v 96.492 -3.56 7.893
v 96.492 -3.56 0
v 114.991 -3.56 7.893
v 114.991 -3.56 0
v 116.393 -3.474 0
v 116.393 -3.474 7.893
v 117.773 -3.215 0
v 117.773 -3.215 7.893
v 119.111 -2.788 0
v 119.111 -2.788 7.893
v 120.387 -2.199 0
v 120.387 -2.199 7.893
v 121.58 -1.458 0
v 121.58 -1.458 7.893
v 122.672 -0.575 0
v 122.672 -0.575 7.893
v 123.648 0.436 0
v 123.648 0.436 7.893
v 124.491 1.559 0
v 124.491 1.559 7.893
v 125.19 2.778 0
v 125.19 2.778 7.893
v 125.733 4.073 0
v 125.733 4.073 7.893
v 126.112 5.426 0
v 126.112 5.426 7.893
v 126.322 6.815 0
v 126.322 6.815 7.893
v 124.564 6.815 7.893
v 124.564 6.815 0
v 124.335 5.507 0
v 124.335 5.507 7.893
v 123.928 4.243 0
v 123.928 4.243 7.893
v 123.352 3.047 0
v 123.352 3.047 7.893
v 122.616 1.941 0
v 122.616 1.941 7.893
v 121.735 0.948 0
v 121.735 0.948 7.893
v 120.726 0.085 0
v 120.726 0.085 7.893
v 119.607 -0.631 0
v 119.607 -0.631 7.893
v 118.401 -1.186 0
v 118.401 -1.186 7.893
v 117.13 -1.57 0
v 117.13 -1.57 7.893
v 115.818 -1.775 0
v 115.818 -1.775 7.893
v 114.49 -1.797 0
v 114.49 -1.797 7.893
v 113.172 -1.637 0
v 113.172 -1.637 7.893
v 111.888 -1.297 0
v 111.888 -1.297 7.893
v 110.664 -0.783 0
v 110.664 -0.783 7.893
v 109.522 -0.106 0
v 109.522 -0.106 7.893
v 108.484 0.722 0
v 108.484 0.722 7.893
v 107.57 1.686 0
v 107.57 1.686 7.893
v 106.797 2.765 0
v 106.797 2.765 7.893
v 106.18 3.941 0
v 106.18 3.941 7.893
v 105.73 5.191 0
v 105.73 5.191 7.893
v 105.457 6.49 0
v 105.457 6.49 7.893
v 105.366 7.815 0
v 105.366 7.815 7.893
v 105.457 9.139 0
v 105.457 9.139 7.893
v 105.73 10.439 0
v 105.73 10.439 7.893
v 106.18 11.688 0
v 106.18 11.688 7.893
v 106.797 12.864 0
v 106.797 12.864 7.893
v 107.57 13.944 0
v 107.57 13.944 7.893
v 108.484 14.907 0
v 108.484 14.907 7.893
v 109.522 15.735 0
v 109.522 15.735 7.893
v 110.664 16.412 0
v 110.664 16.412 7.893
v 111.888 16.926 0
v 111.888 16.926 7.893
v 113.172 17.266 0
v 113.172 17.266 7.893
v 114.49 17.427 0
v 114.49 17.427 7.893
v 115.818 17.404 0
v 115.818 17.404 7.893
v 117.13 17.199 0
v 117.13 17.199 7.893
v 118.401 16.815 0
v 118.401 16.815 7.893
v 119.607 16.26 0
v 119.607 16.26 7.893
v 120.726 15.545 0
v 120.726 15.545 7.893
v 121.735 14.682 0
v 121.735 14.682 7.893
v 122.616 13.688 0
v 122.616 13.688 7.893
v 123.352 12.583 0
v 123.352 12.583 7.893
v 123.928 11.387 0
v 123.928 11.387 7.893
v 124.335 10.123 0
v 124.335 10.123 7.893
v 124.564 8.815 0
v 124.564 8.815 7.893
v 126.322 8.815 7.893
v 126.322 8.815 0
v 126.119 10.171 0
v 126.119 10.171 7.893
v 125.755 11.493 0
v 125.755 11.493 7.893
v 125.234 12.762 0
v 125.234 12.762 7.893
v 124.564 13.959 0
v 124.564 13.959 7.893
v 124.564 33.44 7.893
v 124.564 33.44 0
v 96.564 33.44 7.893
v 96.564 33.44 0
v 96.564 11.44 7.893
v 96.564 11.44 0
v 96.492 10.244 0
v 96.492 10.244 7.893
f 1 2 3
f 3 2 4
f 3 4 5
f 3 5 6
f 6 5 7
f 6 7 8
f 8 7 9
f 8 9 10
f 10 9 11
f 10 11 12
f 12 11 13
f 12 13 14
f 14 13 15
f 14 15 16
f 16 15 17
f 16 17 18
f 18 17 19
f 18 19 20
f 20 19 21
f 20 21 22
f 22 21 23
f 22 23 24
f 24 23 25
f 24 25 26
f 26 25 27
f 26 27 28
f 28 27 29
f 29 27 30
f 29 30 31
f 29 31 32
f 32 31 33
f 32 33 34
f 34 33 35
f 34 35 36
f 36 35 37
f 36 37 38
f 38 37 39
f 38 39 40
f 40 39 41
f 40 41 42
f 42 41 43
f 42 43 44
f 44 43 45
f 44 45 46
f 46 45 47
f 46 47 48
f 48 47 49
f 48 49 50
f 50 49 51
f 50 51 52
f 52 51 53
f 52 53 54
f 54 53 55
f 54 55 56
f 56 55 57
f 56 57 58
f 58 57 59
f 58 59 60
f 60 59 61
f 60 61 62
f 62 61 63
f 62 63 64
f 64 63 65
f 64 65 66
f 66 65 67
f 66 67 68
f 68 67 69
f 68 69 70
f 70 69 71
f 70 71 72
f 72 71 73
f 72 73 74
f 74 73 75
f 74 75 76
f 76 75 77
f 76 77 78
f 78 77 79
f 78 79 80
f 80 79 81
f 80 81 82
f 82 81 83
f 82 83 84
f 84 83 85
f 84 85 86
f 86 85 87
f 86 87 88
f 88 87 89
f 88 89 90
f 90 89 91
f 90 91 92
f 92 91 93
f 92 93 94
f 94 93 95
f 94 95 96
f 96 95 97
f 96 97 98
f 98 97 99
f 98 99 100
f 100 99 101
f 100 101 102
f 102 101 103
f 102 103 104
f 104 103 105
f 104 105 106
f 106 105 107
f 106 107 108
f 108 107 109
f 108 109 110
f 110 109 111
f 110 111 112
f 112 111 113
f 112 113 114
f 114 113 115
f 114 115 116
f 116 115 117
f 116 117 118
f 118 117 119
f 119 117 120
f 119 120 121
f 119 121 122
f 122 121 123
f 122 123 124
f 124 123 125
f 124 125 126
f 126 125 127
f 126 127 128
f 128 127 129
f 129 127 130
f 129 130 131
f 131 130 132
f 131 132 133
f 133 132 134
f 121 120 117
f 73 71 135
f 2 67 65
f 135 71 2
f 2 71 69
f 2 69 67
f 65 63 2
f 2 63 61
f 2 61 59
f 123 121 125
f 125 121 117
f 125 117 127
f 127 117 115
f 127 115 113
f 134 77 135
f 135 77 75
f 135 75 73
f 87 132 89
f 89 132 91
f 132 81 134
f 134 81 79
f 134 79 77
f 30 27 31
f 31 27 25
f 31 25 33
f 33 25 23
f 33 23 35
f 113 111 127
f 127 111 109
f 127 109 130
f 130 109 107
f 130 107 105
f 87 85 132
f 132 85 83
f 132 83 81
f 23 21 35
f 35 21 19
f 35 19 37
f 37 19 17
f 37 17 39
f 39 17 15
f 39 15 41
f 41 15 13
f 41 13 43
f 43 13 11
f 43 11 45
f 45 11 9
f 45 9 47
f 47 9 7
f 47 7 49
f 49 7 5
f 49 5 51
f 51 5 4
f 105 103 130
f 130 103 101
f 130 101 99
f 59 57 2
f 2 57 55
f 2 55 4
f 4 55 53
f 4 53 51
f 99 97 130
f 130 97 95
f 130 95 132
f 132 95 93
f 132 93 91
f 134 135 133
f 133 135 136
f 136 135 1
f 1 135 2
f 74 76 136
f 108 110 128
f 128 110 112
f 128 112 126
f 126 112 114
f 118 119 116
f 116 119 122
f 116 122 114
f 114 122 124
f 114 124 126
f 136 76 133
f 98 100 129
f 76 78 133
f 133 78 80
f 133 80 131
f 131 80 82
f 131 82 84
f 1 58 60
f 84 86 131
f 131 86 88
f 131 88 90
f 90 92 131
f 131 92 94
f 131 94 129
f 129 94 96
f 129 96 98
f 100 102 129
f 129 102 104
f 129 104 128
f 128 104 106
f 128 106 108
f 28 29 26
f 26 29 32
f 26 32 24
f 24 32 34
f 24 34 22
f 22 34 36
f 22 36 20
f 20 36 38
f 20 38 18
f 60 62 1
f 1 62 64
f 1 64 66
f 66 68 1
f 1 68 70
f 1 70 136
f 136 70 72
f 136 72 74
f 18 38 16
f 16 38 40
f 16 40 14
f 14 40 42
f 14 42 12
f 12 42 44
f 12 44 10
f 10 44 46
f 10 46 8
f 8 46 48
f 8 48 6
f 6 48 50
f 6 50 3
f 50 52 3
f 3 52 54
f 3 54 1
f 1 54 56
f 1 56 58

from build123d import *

# Parameters (mm, degrees)
BOSS_EXTRUDE3_DEPTH = 28
FILLET1_R           = 10
SKETCH8_R           = 9.5
SKETCH8_W           = 8
SKETCH8_H           = 5
CUT_EXTRUDE4_DEPTH  = 5
SKETCH10_R          = 1.75
CUT_EXTRUDE6_DEPTH  = 10
CUT_EXTRUDE9_DEPTH  = 5
SKETCH11_W          = 178.461857567
SKETCH11_H          = 75.855450753
CUT_EXTRUDE7_DEPTH  = 56
SKETCH15_W          = 24.76037583
SKETCH15_H          = 40.698494869
CUT_EXTRUDE10_DEPTH = 39


with BuildPart() as part:
    # Sketch7 → Boss-Extrude3 (new body)
    with BuildSketch(Plane.XY):
        with BuildLine():
            Line((-29.009247715, -3.56026037), (114.990752285, -3.56026037))
            ThreePointArc((114.990752285, -3.56026037), (122.672406567, -0.574706865), (126.321710983, 6.81473963))
            Line((126.321710983, 6.81473963), (124.563663285, 6.81473963))
            ThreePointArc((124.563663285, 6.81473963), (105.365752285, 7.81473963), (124.563663285, 8.81473963))
            Line((124.563663285, 8.81473963), (126.321710983, 8.81473963))
            ThreePointArc((126.321710983, 8.81473963), (125.754505842, 11.49335817), (124.563663285, 13.958842494))
            Line((124.563663285, 13.958842494), (124.563663285, 33.43973963))
            Line((124.563663285, 33.43973963), (96.563663285, 33.43973963))
            Line((96.563663285, 33.43973963), (96.563663285, 1.43973963))
            Line((96.563663285, 1.43973963), (-10.582158714, 1.43973963))
            Line((-10.582158714, 1.43973963), (-10.582158714, 33.43973963))
            Line((-10.582158714, 33.43973963), (-38.582158714, 33.43973963))
            Line((-38.582158714, 33.43973963), (-38.582158714, 13.958842494))
            ThreePointArc((-38.582158714, 13.958842494), (-39.773001272, 11.49335817), (-40.340206412, 8.81473963))
            Line((-40.340206412, 8.81473963), (-38.582158714, 8.81473963))
            ThreePointArc((-38.582158714, 8.81473963), (-19.384247715, 7.81473963), (-38.582158714, 6.81473963))
            Line((-38.582158714, 6.81473963), (-40.340206412, 6.81473963))
            ThreePointArc((-40.340206412, 6.81473963), (-36.690901996, -0.574706865), (-29.009247715, -3.56026037))
        make_face()
    extrude(amount=BOSS_EXTRUDE3_DEPTH)

    # Fillet1
    fillet1_edges = [part.edges().sort_by_distance(p)[0] for p in [
        (-10.582158714, 1.43973963, 14),
        (96.563663285, 1.43973963, 14),
    ]]
    fillet(fillet1_edges, radius=FILLET1_R)

    # Sketch8 → Cut-Extrude4 (cut)
    with BuildSketch(Plane(origin=(0, 1.43973963, 0), x_dir=(1, 0, 0), z_dir=(0, 1, 0))):
        with Locations(Location((63.990752285, -14, 0), (0, 0, 270))):
            Circle(SKETCH8_R)
        with Locations(Location((21.990752285, -14, 0), (0, 0, 270))):
            Circle(SKETCH8_R)
        with Locations((42.990752285, -14)):
            Rectangle(SKETCH8_W, SKETCH8_H)
    extrude(amount=-CUT_EXTRUDE4_DEPTH, mode=Mode.SUBTRACT)

    # Sketch10 → Cut-Extrude6 (cut)
    with BuildSketch(Plane(origin=(0, 33.43973963, 0), x_dir=(1, 0, 0), z_dir=(0, 1, 0))):
        with Locations(Location((110.490752285, -14, 0), (0, 0, 180))):
            Circle(SKETCH10_R)
        with Locations(Location((-24.509247715, -14, 0), (0, 0, 180))):
            Circle(SKETCH10_R)
    extrude(amount=-CUT_EXTRUDE6_DEPTH, mode=Mode.SUBTRACT)

    # Sketch13 → Cut-Extrude9 (cut)
    with BuildSketch(Plane(origin=(0, 33.43973963, 0), x_dir=(1, 0, 0), z_dir=(0, 1, 0))):
        Polygon((108.61436391, -17.25), (112.36714066, -17.25), (114.243529035, -14), (112.36714066, -10.75), (108.61436391, -10.75), (106.737975536, -14), align=None)
        Polygon((-20.756470965, -14), (-22.63285934, -10.75), (-26.38563609, -10.75), (-28.262024464, -14), (-26.38563609, -17.25), (-22.63285934, -17.25), align=None)
    extrude(amount=-CUT_EXTRUDE9_DEPTH, mode=Mode.SUBTRACT)

    # Sketch11 → Cut-Extrude7 (cut)
    with BuildSketch(Plane.XY.offset(28)):
        with Locations((7.260936379, 24.571309344)):
            Rectangle(SKETCH11_W, SKETCH11_H)
    extrude(amount=-CUT_EXTRUDE7_DEPTH, mode=Mode.SUBTRACT)

    # Sketch15 → Cut-Extrude10 (cut)
    with BuildSketch(Plane.ZY.offset(-96.491865162)):
        with Locations((20.2732889, 14.243484204)):
            Rectangle(SKETCH15_W, SKETCH15_H)
    extrude(amount=-CUT_EXTRUDE10_DEPTH, mode=Mode.SUBTRACT)


solid = part.part
